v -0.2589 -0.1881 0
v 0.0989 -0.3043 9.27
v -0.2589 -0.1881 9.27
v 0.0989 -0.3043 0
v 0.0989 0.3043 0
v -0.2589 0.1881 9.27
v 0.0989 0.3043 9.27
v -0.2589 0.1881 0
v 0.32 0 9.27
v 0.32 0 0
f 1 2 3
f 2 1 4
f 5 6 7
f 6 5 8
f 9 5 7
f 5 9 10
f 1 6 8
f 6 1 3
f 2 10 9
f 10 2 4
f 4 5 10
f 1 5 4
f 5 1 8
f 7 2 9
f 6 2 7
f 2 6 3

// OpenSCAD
module 075_PRP2520S() {
   color("Gold")
   //tip part 1
   translate([0,0,0])cylinder(h=2,d=0.64,center=false);
   //tip part 2
   //shaft 
   color("Gold")
   translate([0,0,1.27])cylinder(h=8,d=0.64,center=false);
}
075_PRP2520S();
